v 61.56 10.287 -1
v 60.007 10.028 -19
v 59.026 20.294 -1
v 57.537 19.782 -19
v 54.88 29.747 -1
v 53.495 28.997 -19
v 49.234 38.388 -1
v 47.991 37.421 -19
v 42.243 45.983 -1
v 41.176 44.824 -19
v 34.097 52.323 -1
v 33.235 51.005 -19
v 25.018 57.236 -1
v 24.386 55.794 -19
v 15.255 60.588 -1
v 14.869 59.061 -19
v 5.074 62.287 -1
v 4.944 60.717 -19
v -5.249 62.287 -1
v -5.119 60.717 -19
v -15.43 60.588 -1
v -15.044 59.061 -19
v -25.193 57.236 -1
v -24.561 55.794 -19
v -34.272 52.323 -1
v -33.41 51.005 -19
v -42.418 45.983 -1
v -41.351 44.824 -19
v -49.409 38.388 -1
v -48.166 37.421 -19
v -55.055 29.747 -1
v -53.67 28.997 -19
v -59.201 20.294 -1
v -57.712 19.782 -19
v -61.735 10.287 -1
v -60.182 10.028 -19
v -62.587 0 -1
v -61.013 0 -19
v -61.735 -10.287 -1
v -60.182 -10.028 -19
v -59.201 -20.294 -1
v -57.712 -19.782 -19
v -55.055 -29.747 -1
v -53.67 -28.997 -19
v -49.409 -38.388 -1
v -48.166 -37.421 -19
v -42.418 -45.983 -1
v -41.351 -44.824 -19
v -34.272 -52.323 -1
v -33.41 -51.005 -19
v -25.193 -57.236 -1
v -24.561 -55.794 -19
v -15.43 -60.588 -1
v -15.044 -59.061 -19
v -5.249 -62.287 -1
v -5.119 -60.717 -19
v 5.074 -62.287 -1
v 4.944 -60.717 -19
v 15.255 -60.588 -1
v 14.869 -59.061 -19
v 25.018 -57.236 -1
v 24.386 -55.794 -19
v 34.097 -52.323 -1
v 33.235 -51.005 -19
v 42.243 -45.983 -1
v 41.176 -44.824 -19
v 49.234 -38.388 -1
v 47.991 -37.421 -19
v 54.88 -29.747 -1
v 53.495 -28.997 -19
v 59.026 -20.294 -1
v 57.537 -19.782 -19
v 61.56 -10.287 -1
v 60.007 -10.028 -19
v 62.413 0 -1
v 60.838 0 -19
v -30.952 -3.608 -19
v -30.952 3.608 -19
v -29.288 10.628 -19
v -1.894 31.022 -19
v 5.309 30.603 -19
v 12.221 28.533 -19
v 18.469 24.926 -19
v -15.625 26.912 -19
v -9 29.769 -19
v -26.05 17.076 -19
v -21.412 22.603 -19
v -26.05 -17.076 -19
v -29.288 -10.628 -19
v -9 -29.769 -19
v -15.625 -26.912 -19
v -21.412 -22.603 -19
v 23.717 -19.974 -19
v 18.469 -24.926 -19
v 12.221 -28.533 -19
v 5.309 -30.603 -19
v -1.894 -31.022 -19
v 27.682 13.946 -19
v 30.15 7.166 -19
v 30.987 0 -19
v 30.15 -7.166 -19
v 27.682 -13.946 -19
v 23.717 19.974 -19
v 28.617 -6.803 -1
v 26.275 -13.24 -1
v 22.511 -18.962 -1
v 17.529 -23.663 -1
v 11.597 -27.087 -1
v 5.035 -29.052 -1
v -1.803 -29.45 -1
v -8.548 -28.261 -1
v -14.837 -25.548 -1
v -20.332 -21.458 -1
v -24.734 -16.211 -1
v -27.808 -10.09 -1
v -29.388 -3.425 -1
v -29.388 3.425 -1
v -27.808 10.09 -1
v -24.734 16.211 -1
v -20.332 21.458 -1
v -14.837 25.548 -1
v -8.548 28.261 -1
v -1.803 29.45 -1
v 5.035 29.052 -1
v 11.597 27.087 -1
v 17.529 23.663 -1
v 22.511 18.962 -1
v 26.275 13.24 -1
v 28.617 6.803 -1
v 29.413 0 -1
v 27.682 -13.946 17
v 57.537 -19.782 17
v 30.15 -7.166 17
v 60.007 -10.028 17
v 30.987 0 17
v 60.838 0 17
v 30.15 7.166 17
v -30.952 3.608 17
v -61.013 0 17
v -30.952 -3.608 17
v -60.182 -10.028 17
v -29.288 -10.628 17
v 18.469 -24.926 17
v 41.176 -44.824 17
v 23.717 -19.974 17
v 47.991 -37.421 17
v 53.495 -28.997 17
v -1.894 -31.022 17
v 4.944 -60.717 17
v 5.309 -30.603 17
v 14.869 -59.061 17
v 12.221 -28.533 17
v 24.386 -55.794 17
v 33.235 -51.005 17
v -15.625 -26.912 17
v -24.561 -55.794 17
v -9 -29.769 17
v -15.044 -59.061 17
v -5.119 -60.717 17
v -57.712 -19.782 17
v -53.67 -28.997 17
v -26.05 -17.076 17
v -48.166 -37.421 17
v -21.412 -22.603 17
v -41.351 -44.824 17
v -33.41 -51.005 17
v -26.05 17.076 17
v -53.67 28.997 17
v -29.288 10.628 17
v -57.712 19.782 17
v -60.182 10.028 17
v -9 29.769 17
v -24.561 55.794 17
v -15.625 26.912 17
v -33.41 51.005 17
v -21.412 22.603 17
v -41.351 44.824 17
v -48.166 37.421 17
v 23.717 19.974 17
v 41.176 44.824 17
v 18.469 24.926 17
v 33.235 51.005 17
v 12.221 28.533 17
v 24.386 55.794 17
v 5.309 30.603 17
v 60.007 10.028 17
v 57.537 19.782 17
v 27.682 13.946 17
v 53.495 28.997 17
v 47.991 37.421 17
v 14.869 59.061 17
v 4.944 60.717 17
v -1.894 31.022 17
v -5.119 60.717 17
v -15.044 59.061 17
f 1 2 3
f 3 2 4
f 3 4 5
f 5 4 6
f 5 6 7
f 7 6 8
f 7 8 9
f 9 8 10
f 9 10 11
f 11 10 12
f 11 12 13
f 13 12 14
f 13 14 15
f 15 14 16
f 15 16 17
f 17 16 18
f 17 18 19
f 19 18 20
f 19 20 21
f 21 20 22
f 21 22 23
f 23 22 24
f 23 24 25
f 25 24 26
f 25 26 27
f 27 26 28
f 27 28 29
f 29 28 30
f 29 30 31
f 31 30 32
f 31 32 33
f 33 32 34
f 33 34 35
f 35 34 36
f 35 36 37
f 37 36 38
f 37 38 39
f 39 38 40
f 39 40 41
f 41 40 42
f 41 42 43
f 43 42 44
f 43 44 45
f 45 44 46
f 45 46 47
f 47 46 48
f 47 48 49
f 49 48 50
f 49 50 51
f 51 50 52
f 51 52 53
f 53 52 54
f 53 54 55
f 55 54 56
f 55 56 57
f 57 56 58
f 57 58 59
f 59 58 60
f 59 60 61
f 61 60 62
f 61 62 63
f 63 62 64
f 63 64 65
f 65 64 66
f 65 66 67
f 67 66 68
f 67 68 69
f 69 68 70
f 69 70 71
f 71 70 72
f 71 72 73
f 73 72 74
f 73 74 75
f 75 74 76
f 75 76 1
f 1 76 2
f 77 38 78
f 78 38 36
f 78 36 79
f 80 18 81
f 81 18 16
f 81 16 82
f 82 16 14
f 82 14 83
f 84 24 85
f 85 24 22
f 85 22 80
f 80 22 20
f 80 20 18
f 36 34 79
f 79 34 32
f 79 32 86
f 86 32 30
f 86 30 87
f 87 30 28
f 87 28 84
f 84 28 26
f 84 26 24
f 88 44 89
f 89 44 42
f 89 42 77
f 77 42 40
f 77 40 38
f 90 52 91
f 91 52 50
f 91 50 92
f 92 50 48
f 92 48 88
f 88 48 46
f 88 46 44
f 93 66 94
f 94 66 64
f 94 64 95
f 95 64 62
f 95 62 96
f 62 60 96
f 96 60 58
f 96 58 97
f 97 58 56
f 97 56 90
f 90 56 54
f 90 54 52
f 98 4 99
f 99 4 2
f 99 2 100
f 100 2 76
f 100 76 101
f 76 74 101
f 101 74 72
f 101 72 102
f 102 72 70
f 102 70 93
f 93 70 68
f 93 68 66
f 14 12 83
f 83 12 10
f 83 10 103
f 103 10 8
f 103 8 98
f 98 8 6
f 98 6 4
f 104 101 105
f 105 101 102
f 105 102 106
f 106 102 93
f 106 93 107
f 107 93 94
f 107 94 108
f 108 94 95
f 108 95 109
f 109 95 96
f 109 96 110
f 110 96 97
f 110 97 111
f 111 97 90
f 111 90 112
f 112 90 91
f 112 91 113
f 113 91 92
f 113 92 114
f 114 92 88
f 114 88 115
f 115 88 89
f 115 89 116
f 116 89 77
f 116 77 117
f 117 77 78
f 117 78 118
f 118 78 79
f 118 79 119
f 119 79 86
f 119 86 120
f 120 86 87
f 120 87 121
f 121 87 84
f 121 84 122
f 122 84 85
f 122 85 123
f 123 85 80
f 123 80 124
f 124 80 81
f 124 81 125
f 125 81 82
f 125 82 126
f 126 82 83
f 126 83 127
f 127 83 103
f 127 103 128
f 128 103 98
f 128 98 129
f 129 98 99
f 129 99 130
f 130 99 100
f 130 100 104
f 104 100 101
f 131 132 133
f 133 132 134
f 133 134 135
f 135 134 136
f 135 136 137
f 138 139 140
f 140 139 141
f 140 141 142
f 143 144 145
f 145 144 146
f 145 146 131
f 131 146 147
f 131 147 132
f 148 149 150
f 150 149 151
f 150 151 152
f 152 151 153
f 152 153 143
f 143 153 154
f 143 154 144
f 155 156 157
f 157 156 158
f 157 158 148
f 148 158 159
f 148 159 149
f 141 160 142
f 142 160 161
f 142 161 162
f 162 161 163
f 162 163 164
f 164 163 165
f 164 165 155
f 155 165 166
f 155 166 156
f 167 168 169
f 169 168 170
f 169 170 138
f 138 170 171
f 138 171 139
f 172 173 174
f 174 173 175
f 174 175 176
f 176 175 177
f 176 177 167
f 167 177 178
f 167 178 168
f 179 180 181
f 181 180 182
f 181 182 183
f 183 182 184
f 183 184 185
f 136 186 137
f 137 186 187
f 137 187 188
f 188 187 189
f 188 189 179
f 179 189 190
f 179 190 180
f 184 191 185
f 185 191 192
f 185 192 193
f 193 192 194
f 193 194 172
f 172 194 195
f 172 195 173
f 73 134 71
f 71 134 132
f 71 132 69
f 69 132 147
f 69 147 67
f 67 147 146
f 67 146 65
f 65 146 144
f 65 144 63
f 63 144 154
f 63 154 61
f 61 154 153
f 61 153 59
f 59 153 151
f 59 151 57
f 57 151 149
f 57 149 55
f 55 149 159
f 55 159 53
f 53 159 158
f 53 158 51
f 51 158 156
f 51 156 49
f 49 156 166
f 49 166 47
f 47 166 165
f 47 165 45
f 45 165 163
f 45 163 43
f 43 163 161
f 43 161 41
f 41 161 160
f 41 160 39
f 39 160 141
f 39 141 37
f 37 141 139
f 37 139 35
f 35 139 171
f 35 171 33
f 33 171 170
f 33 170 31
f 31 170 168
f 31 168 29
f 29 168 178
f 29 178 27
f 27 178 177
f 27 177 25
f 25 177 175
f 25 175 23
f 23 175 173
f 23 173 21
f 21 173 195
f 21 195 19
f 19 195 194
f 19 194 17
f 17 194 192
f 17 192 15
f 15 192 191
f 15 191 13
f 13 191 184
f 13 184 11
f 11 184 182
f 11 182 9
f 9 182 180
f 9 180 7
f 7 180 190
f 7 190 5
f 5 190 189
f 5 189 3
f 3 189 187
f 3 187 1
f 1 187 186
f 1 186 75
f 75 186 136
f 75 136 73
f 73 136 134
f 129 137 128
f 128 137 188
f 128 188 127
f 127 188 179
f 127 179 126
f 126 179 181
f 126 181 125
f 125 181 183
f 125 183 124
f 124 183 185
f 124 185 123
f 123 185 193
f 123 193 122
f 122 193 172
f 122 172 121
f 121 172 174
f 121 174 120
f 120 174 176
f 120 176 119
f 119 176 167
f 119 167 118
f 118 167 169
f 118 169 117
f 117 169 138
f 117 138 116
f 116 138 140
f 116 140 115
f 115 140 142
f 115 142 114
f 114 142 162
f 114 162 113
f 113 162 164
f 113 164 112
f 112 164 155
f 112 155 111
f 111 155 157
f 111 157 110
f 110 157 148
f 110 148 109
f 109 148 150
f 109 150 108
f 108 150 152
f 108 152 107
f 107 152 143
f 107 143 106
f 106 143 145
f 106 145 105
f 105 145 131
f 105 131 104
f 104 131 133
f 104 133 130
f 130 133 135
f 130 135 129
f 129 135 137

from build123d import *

# Parameters (mm, degrees)
SKETCH_1_R      = 62.5
SKETCH_1_R_2    = 29.5
EXTRUDE_1_DEPTH = 17
EXTRUDE_1_DRAFT = 5
SKETCH_2_R      = 62.5
SKETCH_2_R_2    = 29.5
EXTRUDE_2_DEPTH = 2
SKETCH_3_R      = 62.5
SKETCH_3_R_2    = 29.5
EXTRUDE_3_DEPTH = 17
EXTRUDE_3_DRAFT = 5


with BuildPart() as part:
    # Эскиз1 → Вытянуть1 (with draft: the straight prism first)
    with BuildSketch(Plane.XY):
        Circle(SKETCH_1_R)
        Circle(SKETCH_1_R_2, mode=Mode.SUBTRACT)
    extrude(amount=EXTRUDE_1_DEPTH)
    # Вытянуть1: the draft: its side faces are tilted about the plane it starts from
    extrude_1_sides = [part.faces().sort_by_distance(p)[0] for p in [
        (-62.5, 0, 8.5),
        (-29.5, 0, 8.5),
    ]]
    draft(extrude_1_sides, Plane.XY, EXTRUDE_1_DRAFT)

    # Эскиз2 → Вытянуть2 (add)
    with BuildSketch(Plane(origin=(0, 0, 0), x_dir=(-1, 0, 0), z_dir=(0, 0, -1))):
        Circle(SKETCH_2_R)
        with Locations(Location((0, 0, 0), (0, 0, 180))):
            Circle(SKETCH_2_R_2, mode=Mode.SUBTRACT)
    extrude(amount=EXTRUDE_2_DEPTH)


with BuildPart() as extrude_3_tool:
    # Эскиз3 → Вытянуть3 (with draft: the straight prism first)
    with BuildSketch(Plane(origin=(0, 0, -2), x_dir=(-1, 0, 0), z_dir=(0, 0, -1))):
        Circle(SKETCH_3_R)
        with Locations(Location((0, 0, 0), (0, 0, 180))):
            Circle(SKETCH_3_R_2, mode=Mode.SUBTRACT)
    extrude(amount=EXTRUDE_3_DEPTH)
    # Вытянуть3: the draft: its side faces are tilted about the plane it starts from
    extrude_3_sides = [extrude_3_tool.faces().sort_by_distance(p)[0] for p in [
        (62.5, 0, -10.5),
        (-29.5, 0, -10.5),
    ]]
    draft(extrude_3_sides, Plane(origin=(0, 0, -2), x_dir=(-1, 0, 0), z_dir=(0, 0, -1)), EXTRUDE_3_DRAFT)


with BuildPart() as part_1:
    add(part.part)

    # Вытянуть3: add extrude_3_tool
    add(extrude_3_tool.part)


solid = part_1.part
